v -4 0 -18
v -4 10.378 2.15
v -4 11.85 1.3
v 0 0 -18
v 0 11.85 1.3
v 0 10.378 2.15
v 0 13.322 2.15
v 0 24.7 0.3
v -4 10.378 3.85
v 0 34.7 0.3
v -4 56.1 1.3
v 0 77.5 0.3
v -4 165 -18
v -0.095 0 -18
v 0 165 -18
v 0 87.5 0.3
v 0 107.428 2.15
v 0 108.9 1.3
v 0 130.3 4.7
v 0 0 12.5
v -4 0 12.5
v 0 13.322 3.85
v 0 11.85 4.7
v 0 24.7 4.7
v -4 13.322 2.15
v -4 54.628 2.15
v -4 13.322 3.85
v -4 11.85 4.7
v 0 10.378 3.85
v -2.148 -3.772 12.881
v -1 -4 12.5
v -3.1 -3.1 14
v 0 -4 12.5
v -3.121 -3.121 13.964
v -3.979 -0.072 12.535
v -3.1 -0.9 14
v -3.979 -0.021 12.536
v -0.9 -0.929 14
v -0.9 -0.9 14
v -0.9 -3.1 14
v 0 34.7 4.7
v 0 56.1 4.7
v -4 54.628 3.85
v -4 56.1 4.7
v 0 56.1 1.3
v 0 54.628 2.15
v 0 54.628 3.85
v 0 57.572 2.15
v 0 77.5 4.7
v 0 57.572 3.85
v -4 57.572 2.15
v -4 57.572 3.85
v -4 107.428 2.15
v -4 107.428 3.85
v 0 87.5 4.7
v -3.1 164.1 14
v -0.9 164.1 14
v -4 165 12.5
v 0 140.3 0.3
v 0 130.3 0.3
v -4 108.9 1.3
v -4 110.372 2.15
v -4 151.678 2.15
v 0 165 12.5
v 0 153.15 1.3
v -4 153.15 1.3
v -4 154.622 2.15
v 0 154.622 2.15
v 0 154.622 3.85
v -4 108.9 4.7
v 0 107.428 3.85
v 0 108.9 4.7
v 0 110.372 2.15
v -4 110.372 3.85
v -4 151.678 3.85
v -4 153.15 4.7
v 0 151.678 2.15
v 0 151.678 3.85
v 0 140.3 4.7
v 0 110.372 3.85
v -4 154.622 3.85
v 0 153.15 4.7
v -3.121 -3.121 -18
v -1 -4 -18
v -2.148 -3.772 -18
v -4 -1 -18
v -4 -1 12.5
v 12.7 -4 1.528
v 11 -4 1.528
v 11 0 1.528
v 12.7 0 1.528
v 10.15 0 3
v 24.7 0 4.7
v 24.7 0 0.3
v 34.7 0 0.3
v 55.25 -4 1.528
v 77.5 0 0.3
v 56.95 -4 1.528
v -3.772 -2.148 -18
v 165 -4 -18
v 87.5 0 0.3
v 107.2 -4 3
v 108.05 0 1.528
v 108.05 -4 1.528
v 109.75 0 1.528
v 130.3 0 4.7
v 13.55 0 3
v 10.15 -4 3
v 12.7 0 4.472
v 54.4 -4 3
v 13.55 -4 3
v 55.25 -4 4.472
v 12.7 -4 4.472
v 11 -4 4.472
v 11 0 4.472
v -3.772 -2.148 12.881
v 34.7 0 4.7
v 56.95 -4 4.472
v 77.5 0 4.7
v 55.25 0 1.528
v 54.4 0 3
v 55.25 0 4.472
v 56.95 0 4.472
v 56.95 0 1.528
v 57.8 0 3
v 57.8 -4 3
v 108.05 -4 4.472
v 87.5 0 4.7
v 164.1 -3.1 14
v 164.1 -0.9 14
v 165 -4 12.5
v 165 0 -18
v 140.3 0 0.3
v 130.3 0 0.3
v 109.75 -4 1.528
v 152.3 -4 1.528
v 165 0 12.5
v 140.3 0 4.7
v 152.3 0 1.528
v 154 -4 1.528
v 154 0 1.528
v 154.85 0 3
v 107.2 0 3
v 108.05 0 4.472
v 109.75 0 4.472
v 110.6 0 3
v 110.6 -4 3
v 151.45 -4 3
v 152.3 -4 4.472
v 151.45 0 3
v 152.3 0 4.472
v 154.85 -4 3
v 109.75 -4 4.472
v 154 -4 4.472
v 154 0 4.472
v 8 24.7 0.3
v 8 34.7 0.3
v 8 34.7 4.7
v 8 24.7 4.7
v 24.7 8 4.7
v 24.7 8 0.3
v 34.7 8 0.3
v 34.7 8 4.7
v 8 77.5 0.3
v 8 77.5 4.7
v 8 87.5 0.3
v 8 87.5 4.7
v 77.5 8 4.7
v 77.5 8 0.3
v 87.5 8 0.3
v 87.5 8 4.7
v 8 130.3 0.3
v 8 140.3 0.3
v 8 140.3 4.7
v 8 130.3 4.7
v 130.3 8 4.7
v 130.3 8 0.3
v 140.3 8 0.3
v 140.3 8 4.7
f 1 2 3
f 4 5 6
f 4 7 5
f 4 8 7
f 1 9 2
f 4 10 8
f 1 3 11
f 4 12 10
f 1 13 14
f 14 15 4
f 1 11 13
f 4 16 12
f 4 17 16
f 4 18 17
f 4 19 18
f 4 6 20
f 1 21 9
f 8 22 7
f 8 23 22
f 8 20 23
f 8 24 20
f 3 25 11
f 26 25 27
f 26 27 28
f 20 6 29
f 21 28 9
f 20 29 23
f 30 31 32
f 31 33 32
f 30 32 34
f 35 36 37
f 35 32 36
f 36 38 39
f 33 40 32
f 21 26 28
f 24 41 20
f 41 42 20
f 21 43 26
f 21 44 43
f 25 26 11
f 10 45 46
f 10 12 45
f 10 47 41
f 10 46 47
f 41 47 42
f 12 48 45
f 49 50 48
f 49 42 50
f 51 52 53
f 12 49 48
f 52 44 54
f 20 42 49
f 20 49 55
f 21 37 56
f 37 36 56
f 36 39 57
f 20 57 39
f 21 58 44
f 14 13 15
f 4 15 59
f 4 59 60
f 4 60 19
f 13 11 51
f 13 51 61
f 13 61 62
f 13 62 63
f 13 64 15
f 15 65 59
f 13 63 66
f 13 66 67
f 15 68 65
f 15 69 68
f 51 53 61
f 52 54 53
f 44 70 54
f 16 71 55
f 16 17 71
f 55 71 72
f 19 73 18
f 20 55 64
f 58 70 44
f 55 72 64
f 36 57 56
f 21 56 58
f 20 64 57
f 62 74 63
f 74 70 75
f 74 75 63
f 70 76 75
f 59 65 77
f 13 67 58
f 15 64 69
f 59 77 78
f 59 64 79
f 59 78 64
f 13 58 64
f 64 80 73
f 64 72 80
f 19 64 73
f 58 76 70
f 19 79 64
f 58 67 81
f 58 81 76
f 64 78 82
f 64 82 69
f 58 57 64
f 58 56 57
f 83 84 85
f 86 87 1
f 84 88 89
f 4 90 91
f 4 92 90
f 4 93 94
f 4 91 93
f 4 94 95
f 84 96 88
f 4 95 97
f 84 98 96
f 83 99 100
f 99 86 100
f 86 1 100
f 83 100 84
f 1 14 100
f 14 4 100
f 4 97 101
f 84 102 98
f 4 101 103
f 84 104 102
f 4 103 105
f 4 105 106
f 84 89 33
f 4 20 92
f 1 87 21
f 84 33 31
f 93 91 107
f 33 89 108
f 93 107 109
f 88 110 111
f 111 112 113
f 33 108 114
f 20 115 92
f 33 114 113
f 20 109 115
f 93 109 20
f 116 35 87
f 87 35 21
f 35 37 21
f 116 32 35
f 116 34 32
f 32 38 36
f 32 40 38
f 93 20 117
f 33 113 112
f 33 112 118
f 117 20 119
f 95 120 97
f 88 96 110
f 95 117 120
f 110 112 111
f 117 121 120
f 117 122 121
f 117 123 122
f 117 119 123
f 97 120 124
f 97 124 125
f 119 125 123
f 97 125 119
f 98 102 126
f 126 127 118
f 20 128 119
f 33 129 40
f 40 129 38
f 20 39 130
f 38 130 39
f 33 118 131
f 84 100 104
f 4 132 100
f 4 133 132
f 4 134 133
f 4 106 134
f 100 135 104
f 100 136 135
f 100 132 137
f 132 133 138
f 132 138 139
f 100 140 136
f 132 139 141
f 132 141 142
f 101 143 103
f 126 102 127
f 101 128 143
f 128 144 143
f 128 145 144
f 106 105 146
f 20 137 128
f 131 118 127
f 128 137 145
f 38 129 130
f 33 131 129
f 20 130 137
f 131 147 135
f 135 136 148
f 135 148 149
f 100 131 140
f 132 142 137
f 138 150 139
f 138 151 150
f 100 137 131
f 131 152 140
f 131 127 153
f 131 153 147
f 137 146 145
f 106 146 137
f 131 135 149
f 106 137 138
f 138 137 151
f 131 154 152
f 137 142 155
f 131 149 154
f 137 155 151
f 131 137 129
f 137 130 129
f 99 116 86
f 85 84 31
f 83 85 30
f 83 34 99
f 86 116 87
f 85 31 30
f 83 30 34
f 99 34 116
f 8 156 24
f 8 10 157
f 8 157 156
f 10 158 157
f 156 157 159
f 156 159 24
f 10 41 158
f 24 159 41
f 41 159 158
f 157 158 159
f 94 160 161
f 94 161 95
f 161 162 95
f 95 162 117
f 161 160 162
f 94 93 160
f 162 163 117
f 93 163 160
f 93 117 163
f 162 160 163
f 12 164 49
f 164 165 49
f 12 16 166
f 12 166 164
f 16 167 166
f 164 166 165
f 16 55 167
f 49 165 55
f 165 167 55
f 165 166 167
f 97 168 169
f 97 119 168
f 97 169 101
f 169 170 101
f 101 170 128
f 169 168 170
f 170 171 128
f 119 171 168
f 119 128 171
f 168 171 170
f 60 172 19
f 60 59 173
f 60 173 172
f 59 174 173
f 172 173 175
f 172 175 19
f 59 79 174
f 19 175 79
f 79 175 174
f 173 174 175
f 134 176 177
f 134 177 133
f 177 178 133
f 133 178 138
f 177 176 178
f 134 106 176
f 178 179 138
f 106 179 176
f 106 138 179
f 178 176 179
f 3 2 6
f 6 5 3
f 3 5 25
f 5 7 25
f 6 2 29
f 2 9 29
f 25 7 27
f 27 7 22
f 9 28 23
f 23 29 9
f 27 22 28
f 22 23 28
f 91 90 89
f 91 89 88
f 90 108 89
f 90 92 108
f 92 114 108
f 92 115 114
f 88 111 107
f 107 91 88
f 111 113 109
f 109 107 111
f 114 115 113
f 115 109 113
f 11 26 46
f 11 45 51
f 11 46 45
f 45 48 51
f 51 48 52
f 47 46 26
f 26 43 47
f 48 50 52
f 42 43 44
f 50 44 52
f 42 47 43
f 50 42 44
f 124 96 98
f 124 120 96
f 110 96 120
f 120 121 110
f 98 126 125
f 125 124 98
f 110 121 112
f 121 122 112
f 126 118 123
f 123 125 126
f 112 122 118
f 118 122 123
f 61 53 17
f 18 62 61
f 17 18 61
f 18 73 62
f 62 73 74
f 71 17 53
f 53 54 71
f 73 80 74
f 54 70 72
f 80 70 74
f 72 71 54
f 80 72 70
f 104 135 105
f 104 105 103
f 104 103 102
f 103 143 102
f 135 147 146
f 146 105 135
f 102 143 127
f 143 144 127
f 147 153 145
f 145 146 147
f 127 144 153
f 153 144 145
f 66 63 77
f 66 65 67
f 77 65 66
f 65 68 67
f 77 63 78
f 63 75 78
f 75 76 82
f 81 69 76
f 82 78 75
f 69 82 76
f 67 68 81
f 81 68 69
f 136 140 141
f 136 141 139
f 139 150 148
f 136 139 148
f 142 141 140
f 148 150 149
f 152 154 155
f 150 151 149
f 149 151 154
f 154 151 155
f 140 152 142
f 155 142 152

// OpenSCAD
// file: frame.scad
// ============================================================================
//  RIBBED FRAME HELPER — replaces a solid plate with border + grid ribs.
//  Same stiffness where it matters (bosses clamped flat), ~half the plastic.
// ============================================================================

rib_w    = 10;   // [mm] grid rib width
border_w = 10;   // [mm] perimeter border width

// Plan-view rounded rectangle prism — trims vertical edges to radius r.
// Inset polygon + offset(r) keeps the flat edges on x0/x1/y0/y1.
module rounded_outline(x0, y0, x1, y1, h, r = corner_r) {
    translate([0, 0, -0.05])
        linear_extrude(h + 0.1)
            offset(r = r)
                polygon([[x0 + r, y0 + r],
                         [x1 - r, y0 + r],
                         [x1 - r, y1 - r],
                         [x0 + r, y1 - r]]);
}

// Rounded box helper for external edges. Keep radii small to preserve fits.
module rounded_box(size, r = edge_break) {
    // 2D rounded footprint extruded to preserve exact outer dimensions.
    translate([0,0,-size[2]/2]) linear_extrude(size[2])
        offset(r=r) square([size[0]-2*r,size[1]-2*r],center=true);
}

// x0,y0,x1,y1 = plate extent; xs/ys = station coordinates the ribs run through
module rib_plate(x0, y0, x1, y1, xs, ys) {
    intersection() {
        union() {
        // border ring
        translate([(x0+x1)/2, y0+border_w/2, base_t/2]) rounded_box([x1-x0,border_w,base_t]);
        translate([(x0+x1)/2, y1-border_w/2, base_t/2]) rounded_box([x1-x0,border_w,base_t]);
        translate([x0+border_w/2, (y0+y1)/2, base_t/2]) rounded_box([border_w,y1-y0,base_t]);
        translate([x1-border_w/2, (y0+y1)/2, base_t/2]) rounded_box([border_w,y1-y0,base_t]);
        // ribs through each station row/column
        for (y = ys)
            translate([(x0+x1)/2, y, base_t/2])
                rounded_box([x1-x0, rib_w, base_t]);
        for (x = xs)
            translate([x, (y0+y1)/2, base_t/2])
                rounded_box([rib_w, y1-y0, base_t]);
        }
        rounded_outline(x0, y0, x1, y1, base_t);
    }
}

module pin_post(x, y) {
    translate([x, y, base_t - pin_embed]) {
        cylinder(d = pin_d, h = pin_embed + pin_len - chamfer_h);
        translate([0, 0, pin_embed + pin_len - chamfer_h])
            cylinder(d1 = pin_d, d2 = pin_d - 2 * chamfer_d, h = chamfer_h);
    }
}

module guide_boss(x, y) {
    translate([x, y, base_t])
        cylinder(d = boss_od, h = boss_h);
}

module guide_bores(x, y) {
    translate([x, y, base_t + boss_h - bush_seat_h])
        cylinder(d = bush_hole_d, h = bush_seat_h + 0.02);
    translate([x, y, -0.01])
        cylinder(d = bit_clear_d, h = base_t + boss_h + 0.02);
}
// file: params.scad
// ============================================================================
//  SHARED PARAMETERS — pegboard jig print set
//  10mm holes on a 50mm grid, 18mm plywood, first hole 25mm from each edge.
//  Include this file in every part so dimensions stay in sync.
// ============================================================================

pitch        = 50;    // [mm] grid spacing
hole_d       = 10;    // [mm] drilled hole / bit size (reference)
edge_offset  = 25;    // [mm] first hole centre from each edge
panel_t      = 18;    // [mm] plywood thickness (fence reach below z=0)

// Locating pins — drop into drilled holes. All pin parts print PINS-UP.
pin_d      = 9.8;     // snug in a 10mm hole (9.9 tighter, 9.5 looser)
pin_len    = 10;      // engagement depth
pin_embed  = 3;       // root embedded in the base
chamfer_h  = 1.2;
chamfer_d  = 0.7;

// Drill guides — 12mm OD / 10mm ID metal bush press fit
bush_hole_d  = 11.9;  // press-fit seat (11.7 tighter, 12.1 slip+glue)
bit_clear_d  = 10.4;  // 0.2mm/side clearance
bush_seat_h  = 8;
boss_od      = 24;
boss_h       = 8;

// Base plates
base_t       = 6;
margin       = boss_od / 2 + 6;   // plate margin around stations

// Fence joint — must match between plate notches and fence tabs
notch_d      = 8.4;
notch_w      = 12;
tab_w        = 10;
tab_t        = 4.4;
tab_z0       = 0.3;
tab_in       = 8;
tab_frac     = [0.18, 0.5, 0.82];
fence_t      = 4;
fence_top    = 14;
clamp_gap    = 25;
edge_margin  = 15;
clamp_hole_d = 6;

// Edge rounding — plan-view corner radius, helps high-speed printing
corner_r     = 6;      // [mm] on plates / rib frames
corner_r_s   = 3;      // [mm] on small parts (carriage, inserts)
edge_break   = 0.8;    // [mm] small chamfer on exposed vertical-part edges

// Fence→plate screws — horizontal M3 self-tappers through the fence
// wall into the plate edge band, in the solid gaps between notches.
// Shared by plate (pilot) and fence (through) so positions always match.
screw_d       = 3;      // [mm] M3
screw_clear   = 3.4;    // through-hole Ø in the fence wall
screw_pilot   = 2.4;    // pilot hole Ø into the plate edge
screw_depth   = 9.5;    // pilot depth — stays inside the 10mm border band
screw_z       = 3;      // hole centre height (mid plate thickness)
screw_min_gap = 10;     // smallest solid edge interval that takes a screw

// Solid intervals along a fence edge = reach minus the notch pockets.
// Returns centre positions for the screw holes (same on both parts).
function screw_stations(reach, tab_pos) =
    let(
        flat   = [for (c = tab_pos, e = [-notch_w / 2, notch_w / 2]) c + e],
        bounds = concat([0], flat, [reach]),
        pairs  = [for (i = [0 : 2 : len(bounds) - 2])
                      [bounds[i], bounds[i + 1]]]
    )
    [for (p = pairs) if (p[1] - p[0] >= screw_min_gap)
        (p[0] + p[1]) / 2];
// main file
// ============================================================================
//  STARTER 3x3 FENCE — L-bracket for the 165mm starter3_plate
//  Joint: tabs locate in the plate notches; M3 self-tappers through the
//  walls into the plate edge band clamp it (no glue needed).
//  PRINT: as modelled — wall bottom edges on the bed, USE A BRIM.
// ============================================================================
include <params.scad>
include <frame.scad>

seed_cols = 3;
seed_rows = 3;

span    = edge_offset + (max(seed_cols, seed_rows) - 1) * pitch; // 125
clamp_p = span + clamp_gap;
reach   = clamp_p + edge_margin;                                 // 165
tab_pos = [for (f = tab_frac) f * reach];
screw_pos = screw_stations(reach, tab_pos);

corner_r_f = 3;    // outer corner clip radius
chamfer_t  = 1.5;  // top edge chamfer — vertical
chamfer_i  = 0.9;  // top edge chamfer — horizontal inset
z_top      = panel_t + fence_top;                                // 32

// L footprint with the outer (-fence_t,-fence_t) corner clipped by an arc.
module fence_outline() {
    r = corner_r_f;
    polygon(concat(
        [[-fence_t, -fence_t + r],
         [-fence_t, reach],
         [0, reach],
         [0, 0],
         [reach, 0],
         [reach, -fence_t],
         [-fence_t + r, -fence_t]],
        [for (a = [247.5, 225, 202.5])
            [-fence_t + r + r * cos(a), -fence_t + r + r * sin(a)]]
    ));
}

module starter3_fence() {
    difference() {
        union() {
            intersection() {
                union() {
                    // wall A — chamfered top
                    hull() {
                        translate([-fence_t, -fence_t, -panel_t])
                            cube([fence_t, reach + fence_t,
                                  z_top - chamfer_t]);
                        translate([-fence_t + chamfer_i,
                                   -fence_t + chamfer_i,
                                   -panel_t + z_top - chamfer_t])
                            cube([fence_t - 2 * chamfer_i,
                                  reach + fence_t - 2 * chamfer_i,
                                  chamfer_t]);
                    }
                    // wall B — chamfered top
                    hull() {
                        translate([-fence_t, -fence_t, -panel_t])
                            cube([reach + fence_t, fence_t,
                                  z_top - chamfer_t]);
                        translate([-fence_t + chamfer_i,
                                   -fence_t + chamfer_i,
                                   -panel_t + z_top - chamfer_t])
                            cube([reach + fence_t - 2 * chamfer_i,
                                  fence_t - 2 * chamfer_i,
                                  chamfer_t]);
                    }
                }
                translate([0, 0, -panel_t - 0.1])
                    linear_extrude(z_top + 0.2)
                        fence_outline();
            }
            // tabs stay outside the outline clip — they must reach into
            // the plate region (x>0,y>0) to engage the notches
            for (c = tab_pos) {
                translate([-2, c - tab_w / 2, tab_z0])
                    cube([2 + tab_in, tab_w, tab_t]);
                translate([c - tab_w / 2, -2, tab_z0])
                    cube([tab_w, 2 + tab_in, tab_t]);
            }
        }
        // M3 through-holes — line up with the plate pilot holes
        for (sy = screw_pos) {
            translate([-fence_t - 0.6, sy, screw_z])
                rotate([0, 90, 0])
                    cylinder(d = screw_clear, h = fence_t + 1.2);
            translate([sy, -fence_t - 0.6, screw_z])
                rotate([-90, 0, 0])
                    cylinder(d = screw_clear, h = fence_t + 1.2);
        }
    }
}

starter3_fence();
